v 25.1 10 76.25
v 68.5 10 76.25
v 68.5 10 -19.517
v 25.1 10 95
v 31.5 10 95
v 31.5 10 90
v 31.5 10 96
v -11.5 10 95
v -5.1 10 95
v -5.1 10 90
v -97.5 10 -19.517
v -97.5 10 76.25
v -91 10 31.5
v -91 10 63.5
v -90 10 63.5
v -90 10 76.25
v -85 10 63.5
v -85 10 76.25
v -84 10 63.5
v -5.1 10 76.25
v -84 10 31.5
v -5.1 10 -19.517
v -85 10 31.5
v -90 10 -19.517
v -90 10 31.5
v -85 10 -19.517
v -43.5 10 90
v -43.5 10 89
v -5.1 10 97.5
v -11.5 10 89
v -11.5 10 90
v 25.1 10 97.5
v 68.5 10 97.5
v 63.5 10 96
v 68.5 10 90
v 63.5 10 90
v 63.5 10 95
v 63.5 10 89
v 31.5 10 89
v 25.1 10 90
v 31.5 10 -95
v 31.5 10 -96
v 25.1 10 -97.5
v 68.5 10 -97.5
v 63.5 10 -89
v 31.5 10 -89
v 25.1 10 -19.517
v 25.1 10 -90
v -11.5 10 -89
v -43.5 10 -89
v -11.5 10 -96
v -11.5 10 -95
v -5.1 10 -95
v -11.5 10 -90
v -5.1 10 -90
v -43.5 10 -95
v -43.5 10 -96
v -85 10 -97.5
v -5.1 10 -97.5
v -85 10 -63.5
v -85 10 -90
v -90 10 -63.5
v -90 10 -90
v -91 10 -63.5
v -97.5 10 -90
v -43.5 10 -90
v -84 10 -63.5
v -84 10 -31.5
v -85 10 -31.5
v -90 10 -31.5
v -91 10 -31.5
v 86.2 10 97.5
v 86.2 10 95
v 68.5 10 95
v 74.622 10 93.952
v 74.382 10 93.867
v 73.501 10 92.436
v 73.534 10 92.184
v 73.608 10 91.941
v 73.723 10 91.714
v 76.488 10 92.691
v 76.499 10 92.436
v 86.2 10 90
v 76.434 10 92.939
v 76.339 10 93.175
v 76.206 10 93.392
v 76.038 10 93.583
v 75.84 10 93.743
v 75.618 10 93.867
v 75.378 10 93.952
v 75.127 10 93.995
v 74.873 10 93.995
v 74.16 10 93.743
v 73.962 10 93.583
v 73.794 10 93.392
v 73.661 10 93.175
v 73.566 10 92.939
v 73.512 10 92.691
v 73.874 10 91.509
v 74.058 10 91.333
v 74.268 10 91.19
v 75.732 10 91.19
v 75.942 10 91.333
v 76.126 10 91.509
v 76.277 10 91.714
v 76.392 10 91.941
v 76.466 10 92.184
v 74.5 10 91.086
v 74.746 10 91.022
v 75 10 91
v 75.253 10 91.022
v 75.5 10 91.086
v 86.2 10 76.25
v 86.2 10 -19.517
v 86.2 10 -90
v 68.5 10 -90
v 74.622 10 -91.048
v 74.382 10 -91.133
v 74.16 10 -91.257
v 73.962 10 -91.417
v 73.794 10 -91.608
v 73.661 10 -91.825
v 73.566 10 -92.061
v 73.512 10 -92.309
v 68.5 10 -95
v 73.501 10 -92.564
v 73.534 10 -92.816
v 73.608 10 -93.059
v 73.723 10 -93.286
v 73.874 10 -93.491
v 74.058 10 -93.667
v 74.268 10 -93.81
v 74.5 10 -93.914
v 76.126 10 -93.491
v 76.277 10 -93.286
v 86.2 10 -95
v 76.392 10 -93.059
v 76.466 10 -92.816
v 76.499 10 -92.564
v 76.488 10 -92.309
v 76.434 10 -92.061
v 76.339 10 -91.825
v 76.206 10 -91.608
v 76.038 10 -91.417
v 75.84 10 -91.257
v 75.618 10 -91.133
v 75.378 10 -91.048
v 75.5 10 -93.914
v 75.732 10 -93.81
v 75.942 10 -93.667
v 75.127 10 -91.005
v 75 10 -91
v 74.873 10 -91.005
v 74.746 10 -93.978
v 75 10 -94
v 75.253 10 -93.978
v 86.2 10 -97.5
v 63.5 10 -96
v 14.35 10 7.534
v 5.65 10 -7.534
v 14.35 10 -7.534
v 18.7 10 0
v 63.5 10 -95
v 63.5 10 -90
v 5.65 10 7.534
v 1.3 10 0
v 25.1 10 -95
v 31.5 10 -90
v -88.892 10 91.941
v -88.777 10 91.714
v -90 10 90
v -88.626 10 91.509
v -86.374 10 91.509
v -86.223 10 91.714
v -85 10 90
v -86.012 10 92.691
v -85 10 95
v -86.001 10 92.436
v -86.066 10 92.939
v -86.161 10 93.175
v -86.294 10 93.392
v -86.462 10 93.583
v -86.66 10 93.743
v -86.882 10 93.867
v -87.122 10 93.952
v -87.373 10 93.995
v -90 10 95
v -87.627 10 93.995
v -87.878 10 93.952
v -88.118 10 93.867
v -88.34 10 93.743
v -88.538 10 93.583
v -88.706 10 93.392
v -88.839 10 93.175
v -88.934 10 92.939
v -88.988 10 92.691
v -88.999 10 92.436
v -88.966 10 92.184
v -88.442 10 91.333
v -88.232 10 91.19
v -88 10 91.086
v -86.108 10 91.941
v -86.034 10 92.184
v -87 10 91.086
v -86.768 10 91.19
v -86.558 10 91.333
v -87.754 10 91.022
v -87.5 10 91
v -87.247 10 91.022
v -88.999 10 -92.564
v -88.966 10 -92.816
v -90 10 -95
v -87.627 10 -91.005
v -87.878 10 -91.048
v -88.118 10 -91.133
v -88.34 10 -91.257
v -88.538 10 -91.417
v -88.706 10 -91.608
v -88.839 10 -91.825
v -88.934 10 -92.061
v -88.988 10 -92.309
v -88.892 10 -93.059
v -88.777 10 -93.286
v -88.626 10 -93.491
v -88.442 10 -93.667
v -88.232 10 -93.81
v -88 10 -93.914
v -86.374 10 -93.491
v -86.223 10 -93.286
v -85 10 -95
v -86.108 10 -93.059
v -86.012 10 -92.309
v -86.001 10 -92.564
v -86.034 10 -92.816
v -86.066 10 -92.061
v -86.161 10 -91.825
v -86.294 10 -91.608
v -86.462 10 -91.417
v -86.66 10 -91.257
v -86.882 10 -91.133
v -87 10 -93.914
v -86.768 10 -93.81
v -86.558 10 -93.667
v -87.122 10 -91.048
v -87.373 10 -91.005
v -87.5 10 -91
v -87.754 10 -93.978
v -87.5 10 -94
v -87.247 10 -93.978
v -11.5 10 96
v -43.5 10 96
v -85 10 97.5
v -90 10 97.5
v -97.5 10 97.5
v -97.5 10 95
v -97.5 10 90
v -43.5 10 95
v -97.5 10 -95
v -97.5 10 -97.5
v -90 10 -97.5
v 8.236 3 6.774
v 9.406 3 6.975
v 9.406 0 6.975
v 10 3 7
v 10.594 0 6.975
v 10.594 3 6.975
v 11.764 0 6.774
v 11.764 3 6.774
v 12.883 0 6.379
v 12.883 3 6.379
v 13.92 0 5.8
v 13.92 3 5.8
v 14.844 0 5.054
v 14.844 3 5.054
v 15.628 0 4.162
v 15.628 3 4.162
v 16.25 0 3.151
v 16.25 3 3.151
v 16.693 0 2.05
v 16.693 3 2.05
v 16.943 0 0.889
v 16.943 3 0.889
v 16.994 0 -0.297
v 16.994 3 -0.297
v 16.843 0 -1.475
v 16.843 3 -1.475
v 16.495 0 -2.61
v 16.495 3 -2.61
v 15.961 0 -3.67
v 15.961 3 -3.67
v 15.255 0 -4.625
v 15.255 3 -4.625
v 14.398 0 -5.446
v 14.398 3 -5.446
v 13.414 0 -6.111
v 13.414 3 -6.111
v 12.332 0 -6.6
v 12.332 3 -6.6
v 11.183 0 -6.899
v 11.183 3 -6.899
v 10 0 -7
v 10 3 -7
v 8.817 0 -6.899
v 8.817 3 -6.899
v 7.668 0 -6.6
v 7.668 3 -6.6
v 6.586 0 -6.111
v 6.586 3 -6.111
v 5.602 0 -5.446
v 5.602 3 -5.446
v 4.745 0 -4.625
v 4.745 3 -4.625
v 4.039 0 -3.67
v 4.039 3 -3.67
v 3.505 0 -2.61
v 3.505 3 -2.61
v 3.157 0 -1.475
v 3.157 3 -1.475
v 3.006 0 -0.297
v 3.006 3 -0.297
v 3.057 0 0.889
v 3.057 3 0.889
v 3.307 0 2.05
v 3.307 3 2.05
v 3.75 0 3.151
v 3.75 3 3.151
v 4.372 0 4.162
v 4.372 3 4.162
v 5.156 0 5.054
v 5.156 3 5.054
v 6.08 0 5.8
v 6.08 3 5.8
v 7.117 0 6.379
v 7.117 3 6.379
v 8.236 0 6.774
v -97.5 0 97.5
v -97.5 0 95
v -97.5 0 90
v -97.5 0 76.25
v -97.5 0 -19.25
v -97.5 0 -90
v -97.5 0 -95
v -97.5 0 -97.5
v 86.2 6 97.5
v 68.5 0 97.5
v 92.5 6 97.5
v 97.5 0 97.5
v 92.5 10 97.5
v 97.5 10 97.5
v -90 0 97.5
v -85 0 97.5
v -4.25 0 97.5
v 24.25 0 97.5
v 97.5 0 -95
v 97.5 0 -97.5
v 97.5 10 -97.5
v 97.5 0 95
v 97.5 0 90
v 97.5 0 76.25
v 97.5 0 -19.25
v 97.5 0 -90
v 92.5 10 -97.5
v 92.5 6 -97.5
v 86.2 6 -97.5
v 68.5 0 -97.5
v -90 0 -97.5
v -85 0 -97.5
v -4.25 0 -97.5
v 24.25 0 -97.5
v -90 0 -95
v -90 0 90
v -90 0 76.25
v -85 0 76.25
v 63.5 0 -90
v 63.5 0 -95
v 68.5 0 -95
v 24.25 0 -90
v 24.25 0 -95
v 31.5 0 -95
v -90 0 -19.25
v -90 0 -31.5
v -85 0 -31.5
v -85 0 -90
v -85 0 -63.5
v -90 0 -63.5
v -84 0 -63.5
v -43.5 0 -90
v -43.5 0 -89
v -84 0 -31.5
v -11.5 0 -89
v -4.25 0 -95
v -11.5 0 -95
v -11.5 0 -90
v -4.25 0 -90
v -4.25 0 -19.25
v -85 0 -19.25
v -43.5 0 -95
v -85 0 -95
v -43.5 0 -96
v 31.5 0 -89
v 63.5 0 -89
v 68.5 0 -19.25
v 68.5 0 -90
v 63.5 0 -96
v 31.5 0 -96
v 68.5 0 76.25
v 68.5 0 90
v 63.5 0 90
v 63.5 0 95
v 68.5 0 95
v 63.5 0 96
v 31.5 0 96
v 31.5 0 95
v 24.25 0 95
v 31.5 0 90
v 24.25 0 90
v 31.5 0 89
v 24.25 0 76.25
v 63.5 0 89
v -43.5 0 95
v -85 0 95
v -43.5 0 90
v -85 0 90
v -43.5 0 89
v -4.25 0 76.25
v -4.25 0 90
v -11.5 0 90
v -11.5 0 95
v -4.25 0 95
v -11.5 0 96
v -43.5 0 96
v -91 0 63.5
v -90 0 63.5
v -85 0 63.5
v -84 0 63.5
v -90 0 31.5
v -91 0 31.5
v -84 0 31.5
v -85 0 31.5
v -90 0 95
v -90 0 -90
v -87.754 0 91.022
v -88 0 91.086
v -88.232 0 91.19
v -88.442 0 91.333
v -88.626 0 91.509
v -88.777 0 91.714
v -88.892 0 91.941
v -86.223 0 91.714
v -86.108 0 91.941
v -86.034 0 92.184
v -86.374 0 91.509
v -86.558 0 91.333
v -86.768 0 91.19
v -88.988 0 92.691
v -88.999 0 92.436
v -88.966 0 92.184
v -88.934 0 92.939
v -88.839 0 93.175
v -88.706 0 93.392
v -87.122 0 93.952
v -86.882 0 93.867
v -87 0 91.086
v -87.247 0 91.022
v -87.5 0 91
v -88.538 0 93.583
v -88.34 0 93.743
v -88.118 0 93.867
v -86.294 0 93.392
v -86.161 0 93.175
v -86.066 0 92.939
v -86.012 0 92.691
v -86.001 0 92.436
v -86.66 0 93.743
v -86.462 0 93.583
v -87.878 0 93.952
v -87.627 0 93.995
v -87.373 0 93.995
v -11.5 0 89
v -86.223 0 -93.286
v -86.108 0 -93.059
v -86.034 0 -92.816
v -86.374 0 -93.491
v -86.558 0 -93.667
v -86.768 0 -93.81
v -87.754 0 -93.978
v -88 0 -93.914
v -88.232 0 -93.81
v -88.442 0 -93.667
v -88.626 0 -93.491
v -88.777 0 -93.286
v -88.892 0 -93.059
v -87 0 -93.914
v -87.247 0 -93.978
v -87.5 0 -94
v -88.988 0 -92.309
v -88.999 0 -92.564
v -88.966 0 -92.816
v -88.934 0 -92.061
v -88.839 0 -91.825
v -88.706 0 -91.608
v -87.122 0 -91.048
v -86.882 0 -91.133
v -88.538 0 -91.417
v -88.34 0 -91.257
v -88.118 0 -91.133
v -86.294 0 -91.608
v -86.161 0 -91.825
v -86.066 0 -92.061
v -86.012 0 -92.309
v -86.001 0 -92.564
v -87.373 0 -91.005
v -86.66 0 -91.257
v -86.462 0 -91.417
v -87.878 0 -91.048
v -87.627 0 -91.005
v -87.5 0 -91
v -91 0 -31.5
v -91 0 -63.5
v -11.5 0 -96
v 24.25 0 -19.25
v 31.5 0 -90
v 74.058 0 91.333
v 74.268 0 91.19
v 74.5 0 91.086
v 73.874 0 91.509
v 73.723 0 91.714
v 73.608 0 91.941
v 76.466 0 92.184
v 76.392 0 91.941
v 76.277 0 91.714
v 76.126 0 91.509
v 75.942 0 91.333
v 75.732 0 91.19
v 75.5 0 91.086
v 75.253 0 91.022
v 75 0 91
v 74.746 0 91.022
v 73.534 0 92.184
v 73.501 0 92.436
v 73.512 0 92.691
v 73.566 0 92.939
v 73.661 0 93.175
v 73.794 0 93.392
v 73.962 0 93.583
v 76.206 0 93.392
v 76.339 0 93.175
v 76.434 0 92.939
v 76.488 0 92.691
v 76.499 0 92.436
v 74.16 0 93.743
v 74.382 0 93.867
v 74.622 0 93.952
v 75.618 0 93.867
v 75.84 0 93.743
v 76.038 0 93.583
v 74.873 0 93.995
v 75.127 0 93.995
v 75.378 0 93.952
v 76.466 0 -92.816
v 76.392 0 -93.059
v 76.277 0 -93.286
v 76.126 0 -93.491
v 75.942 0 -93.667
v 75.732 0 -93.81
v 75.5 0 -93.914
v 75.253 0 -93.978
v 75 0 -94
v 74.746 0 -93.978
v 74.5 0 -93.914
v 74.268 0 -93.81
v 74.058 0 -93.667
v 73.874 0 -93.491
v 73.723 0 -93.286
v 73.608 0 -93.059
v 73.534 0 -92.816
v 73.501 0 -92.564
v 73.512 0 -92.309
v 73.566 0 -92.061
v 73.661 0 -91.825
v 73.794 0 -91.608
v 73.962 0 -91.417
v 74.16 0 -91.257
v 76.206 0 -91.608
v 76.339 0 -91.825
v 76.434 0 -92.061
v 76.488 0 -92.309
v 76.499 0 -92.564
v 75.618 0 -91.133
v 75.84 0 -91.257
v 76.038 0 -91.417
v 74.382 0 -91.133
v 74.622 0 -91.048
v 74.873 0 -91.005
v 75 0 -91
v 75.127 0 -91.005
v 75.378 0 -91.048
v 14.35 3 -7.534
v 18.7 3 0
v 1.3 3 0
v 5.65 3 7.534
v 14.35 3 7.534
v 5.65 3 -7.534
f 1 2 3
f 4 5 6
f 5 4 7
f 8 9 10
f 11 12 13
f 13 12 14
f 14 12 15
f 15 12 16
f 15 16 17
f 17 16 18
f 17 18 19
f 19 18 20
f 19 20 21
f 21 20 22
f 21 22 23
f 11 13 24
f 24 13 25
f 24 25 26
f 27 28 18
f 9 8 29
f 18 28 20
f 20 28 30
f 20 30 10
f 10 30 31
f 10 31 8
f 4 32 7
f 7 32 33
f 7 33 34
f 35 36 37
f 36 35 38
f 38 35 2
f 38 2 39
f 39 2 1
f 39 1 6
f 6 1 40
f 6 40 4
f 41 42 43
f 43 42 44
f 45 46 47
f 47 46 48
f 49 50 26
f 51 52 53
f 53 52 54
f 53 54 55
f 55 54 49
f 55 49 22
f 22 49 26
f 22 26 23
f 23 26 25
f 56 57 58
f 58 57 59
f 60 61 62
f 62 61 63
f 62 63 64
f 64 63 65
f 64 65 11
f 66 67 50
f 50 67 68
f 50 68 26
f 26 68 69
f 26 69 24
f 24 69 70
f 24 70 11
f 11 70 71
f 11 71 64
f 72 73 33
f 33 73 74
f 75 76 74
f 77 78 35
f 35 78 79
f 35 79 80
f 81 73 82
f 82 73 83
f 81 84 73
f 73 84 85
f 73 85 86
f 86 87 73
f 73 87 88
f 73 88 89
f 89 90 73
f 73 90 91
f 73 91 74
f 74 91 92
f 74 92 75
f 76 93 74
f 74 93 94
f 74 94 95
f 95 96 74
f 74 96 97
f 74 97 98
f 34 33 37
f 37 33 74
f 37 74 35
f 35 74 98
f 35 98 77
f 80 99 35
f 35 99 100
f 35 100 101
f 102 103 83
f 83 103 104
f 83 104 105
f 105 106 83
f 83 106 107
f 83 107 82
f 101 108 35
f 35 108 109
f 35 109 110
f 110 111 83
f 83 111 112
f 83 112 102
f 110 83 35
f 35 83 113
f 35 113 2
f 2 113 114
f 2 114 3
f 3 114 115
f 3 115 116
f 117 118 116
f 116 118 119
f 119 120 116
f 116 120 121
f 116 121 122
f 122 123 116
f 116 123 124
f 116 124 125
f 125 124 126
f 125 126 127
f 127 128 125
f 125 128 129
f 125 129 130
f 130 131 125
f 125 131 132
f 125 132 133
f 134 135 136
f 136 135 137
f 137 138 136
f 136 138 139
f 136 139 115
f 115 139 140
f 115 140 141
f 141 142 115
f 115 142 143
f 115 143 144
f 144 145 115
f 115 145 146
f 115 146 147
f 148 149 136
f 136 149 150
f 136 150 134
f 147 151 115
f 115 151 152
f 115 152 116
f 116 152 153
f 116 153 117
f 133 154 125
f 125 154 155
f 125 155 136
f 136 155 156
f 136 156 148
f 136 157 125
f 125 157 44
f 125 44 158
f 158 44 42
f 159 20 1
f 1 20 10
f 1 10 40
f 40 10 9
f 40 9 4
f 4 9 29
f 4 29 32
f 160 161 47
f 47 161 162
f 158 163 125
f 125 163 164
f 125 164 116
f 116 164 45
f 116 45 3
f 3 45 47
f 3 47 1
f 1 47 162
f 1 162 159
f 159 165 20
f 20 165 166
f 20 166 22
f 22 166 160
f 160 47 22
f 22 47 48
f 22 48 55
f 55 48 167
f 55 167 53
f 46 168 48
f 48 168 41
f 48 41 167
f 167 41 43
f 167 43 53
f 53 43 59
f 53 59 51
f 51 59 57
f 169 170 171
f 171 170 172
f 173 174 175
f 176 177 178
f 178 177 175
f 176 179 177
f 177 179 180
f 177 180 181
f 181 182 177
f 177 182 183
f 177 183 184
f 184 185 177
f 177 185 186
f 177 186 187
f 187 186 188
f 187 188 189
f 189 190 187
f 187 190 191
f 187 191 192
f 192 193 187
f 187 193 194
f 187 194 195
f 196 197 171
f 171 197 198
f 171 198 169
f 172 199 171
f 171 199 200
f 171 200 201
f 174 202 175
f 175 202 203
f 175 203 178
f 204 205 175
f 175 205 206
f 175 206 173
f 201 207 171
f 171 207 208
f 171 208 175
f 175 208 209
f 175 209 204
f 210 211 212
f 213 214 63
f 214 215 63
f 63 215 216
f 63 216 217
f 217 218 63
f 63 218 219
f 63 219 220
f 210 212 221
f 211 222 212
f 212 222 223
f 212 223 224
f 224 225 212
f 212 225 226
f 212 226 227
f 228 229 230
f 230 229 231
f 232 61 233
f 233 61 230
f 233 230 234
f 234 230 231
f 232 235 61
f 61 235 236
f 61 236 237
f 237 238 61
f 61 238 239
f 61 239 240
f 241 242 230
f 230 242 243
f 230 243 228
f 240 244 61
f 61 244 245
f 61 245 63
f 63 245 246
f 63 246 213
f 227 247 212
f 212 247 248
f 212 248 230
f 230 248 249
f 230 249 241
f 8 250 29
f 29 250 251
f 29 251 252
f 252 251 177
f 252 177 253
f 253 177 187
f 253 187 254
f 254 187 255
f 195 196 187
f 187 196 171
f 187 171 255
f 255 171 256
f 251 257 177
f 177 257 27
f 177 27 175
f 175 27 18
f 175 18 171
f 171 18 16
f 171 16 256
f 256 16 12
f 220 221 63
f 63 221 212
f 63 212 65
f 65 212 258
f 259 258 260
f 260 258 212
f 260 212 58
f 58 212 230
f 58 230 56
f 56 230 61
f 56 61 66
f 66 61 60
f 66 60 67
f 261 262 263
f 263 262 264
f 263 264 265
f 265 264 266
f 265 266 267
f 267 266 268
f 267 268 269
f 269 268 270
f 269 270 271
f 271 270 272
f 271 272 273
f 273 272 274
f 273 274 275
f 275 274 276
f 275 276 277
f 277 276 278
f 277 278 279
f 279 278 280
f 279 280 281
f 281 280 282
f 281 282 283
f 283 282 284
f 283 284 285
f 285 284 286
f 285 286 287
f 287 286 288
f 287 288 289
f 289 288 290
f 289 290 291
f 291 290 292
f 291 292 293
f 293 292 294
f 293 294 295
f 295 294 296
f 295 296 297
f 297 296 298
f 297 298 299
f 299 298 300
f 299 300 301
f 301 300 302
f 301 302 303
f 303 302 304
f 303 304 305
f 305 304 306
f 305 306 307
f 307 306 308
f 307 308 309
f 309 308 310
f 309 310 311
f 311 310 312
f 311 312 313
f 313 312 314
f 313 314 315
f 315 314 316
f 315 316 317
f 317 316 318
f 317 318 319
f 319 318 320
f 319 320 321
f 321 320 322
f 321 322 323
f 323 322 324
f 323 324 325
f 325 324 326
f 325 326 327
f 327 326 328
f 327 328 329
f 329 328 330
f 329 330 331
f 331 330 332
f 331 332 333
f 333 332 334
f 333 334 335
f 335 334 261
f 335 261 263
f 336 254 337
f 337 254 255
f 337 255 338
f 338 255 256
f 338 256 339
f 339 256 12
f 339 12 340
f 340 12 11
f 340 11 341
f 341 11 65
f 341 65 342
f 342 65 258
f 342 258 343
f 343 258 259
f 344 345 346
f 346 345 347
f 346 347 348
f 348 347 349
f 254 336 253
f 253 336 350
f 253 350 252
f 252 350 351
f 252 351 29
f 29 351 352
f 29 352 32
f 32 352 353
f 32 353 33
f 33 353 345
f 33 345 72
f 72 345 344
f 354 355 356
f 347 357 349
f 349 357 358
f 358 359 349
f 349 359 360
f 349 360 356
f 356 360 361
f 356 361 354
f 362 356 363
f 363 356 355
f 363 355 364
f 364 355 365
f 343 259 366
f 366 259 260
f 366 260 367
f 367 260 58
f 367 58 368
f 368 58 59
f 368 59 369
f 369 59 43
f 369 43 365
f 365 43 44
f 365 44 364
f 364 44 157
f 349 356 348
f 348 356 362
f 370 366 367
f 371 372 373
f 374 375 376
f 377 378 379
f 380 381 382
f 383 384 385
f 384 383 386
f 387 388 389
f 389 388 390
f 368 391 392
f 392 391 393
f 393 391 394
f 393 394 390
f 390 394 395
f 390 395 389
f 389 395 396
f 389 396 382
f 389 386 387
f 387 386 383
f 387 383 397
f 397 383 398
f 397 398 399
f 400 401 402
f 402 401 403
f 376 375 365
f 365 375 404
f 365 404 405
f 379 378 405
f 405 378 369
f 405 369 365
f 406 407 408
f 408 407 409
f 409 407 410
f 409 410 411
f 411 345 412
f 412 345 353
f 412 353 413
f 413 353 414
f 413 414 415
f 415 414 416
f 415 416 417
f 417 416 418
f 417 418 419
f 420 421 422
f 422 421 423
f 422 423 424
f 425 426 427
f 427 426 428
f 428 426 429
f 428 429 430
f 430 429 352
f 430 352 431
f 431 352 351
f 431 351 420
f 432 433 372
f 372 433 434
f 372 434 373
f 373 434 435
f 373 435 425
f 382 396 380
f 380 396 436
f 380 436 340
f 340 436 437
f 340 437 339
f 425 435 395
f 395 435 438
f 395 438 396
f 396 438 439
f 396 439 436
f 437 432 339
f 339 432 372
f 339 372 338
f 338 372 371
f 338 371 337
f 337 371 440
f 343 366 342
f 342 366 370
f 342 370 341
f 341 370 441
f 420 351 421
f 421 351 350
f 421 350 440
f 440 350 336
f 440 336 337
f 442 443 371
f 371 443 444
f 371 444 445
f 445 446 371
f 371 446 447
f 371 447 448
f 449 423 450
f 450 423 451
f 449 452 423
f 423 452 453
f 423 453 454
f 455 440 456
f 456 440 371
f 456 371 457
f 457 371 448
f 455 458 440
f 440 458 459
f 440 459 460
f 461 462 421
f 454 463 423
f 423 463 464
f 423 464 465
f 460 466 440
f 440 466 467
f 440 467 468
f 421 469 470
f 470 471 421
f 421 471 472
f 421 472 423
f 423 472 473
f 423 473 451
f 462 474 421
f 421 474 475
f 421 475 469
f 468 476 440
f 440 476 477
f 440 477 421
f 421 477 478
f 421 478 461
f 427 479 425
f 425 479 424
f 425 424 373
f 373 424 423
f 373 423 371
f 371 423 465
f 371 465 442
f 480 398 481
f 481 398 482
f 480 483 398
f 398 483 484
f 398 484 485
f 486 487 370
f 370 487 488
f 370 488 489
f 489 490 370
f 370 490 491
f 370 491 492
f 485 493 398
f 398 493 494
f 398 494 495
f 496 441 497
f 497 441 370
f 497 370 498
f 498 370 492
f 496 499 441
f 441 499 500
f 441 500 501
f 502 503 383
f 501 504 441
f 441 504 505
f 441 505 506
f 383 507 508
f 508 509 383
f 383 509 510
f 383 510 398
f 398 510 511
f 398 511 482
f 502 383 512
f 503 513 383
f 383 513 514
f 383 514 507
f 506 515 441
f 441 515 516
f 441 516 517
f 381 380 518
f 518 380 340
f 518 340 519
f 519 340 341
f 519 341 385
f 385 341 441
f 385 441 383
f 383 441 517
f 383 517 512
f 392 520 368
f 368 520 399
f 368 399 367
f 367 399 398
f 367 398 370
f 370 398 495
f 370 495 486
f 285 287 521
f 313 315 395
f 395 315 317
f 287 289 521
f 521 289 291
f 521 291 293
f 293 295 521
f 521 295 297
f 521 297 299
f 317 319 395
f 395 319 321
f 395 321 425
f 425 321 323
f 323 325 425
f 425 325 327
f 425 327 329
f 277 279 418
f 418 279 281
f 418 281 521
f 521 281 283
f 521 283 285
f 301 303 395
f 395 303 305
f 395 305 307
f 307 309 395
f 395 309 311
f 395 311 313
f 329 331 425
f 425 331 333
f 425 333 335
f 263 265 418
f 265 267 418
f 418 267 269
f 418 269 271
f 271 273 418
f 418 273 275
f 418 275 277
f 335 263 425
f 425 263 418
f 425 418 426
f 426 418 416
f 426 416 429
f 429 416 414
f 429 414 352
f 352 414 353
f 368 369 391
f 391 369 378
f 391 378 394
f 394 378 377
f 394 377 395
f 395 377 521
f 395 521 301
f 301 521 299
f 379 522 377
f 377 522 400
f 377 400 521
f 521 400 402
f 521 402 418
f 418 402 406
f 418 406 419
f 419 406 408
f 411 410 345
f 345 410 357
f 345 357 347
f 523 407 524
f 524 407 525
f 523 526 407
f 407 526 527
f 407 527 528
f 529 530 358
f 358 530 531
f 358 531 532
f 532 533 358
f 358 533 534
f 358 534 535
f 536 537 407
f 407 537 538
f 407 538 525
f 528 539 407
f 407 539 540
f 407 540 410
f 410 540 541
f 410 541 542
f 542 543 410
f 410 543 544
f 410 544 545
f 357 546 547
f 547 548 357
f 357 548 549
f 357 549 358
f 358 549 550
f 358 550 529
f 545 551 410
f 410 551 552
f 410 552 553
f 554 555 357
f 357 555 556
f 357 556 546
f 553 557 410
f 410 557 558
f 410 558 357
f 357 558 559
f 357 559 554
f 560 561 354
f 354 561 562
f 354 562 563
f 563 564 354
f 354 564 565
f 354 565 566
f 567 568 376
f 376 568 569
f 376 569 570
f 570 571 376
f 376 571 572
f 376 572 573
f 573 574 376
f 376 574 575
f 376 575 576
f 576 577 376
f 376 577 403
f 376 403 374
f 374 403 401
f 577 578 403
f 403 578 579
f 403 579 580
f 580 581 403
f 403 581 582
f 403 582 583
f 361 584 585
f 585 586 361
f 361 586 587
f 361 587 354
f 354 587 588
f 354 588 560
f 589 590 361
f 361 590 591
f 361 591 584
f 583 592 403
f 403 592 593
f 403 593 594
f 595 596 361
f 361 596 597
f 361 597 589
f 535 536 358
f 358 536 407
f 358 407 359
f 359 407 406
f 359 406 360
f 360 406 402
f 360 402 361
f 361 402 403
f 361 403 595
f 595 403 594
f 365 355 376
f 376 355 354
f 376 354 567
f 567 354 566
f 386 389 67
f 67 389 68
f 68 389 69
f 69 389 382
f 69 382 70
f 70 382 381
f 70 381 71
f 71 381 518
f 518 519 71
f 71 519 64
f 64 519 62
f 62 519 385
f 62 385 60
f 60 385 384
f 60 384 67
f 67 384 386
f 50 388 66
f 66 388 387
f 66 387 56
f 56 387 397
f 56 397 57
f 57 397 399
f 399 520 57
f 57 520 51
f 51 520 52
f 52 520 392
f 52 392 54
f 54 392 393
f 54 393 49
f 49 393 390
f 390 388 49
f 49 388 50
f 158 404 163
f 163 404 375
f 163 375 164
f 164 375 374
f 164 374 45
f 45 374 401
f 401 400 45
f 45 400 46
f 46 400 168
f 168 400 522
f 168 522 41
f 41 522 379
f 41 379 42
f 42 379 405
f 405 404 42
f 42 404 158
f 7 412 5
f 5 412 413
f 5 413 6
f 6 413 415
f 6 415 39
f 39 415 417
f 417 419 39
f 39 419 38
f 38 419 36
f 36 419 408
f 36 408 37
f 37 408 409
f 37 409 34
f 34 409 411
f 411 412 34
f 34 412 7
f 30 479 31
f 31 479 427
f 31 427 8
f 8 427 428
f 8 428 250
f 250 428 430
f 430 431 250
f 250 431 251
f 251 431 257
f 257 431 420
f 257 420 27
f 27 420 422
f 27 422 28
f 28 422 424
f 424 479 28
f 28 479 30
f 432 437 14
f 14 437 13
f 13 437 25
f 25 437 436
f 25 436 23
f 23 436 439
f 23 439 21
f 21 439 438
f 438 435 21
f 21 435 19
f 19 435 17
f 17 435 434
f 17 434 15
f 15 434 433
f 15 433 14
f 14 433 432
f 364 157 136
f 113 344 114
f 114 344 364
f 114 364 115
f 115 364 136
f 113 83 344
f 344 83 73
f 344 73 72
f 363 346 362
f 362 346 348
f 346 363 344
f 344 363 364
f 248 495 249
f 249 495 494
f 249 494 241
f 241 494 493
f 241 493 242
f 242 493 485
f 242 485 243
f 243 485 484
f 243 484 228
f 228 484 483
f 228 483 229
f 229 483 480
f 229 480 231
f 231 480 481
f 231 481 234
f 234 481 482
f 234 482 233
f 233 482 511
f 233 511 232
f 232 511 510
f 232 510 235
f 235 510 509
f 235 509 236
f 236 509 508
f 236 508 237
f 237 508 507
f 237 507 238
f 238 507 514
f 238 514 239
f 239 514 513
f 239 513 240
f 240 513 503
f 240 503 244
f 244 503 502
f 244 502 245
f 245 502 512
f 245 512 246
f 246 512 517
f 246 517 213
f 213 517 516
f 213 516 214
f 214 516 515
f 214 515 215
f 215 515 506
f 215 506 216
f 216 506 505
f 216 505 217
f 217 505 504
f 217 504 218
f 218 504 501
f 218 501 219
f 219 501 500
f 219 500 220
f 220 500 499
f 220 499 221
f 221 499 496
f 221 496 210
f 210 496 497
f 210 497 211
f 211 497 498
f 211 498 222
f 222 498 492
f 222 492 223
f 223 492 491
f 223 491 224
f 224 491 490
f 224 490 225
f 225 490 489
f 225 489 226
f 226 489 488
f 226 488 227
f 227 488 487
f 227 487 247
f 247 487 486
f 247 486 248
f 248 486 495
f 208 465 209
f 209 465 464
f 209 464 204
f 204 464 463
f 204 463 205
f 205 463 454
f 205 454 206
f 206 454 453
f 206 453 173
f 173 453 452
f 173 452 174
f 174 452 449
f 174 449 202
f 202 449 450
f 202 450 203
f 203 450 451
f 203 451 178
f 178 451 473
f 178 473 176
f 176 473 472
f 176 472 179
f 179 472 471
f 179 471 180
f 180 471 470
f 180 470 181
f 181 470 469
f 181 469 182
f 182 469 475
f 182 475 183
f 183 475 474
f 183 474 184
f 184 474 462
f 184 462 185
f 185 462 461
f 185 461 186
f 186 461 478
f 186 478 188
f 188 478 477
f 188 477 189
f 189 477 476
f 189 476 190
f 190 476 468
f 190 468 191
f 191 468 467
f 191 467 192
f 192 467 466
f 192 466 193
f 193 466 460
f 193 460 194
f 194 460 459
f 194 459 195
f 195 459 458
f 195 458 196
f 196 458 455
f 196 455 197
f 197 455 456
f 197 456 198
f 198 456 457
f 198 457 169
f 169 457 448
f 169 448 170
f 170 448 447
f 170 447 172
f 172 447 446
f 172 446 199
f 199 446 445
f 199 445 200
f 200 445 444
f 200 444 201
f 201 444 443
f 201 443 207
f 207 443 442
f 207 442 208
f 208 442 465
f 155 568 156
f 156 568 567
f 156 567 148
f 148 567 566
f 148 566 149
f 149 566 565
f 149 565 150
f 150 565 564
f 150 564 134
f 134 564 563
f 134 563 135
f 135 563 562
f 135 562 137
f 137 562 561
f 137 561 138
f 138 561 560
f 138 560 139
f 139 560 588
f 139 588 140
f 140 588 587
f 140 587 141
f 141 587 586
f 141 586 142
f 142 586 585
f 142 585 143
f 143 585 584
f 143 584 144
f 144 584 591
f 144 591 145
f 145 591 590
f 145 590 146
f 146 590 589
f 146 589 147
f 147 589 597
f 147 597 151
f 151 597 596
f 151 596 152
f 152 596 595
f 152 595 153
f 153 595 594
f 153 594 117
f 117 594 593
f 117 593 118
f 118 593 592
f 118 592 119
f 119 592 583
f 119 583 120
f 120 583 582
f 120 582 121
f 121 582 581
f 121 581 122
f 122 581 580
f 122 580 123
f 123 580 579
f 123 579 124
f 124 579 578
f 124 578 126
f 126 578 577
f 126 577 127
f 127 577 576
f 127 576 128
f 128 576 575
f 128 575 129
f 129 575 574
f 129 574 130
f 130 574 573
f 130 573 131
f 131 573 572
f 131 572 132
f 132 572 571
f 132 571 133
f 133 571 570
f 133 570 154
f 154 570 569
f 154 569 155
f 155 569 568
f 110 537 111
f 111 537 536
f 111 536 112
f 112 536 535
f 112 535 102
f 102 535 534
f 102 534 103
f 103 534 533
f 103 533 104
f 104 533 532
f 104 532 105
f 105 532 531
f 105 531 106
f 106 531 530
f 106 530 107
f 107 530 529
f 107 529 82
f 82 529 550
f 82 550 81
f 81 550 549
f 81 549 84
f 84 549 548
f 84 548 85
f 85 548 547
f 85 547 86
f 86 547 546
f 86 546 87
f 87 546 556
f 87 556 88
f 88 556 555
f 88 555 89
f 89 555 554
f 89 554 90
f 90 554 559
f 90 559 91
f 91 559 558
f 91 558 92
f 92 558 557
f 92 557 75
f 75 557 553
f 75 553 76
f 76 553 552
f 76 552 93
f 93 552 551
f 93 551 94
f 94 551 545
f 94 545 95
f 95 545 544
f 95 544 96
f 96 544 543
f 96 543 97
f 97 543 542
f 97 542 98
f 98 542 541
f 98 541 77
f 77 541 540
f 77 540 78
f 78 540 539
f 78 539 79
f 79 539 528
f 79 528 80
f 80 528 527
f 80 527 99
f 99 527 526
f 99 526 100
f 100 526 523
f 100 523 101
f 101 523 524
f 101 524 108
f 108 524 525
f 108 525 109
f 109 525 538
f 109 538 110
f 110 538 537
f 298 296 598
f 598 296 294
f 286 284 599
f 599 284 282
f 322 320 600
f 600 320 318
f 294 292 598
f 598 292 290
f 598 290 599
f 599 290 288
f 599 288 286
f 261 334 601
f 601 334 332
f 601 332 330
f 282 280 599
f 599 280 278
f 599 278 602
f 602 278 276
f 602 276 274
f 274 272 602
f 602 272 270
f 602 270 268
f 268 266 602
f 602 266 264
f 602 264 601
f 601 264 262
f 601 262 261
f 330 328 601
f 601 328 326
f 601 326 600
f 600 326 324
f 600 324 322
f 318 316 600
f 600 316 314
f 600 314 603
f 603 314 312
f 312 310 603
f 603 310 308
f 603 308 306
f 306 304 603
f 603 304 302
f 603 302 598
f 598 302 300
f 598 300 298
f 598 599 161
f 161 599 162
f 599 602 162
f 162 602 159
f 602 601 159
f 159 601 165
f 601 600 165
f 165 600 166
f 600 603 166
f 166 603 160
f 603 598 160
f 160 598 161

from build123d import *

# Parameters (mm, degrees)
ESBO_O1_W                = 195
ESBO_O1_H                = 195
RESSALTO_EXTRUS_O1_DEPTH = 10
ESBO_O2_W                = 7
ESBO_O2_H                = 32
ESBO_O2_W_2              = 32
ESBO_O2_H_2              = 7
CORTE_EXTRUS_O1_DEPTH    = 11
ESBO_O3_W                = 6.3
ESBO_O3_H                = 195
CORTE_EXTRUS_O2_DEPTH    = 4
ESBO_O4_R                = 1.5
CORTE_EXTRUS_O3_DEPTH    = 11
ESBO_O5_R                = 1.5
CORTE_EXTRUS_O4_DEPTH    = 11
ESBO_O6_R                = 7
CORTE_EXTRUS_O5_DEPTH    = 11
ESBO_O7_R                = 7
CORTE_EXTRUS_O6_DEPTH    = 7


with BuildPart() as part:
    # Esboço1 → Ressalto-extrusão1 (new body)
    with BuildSketch(Plane(origin=(0, 0, 0), x_dir=(1, 0, 0), z_dir=(0, 1, 0))):
        Rectangle(ESBO_O1_W, ESBO_O1_H)
    extrude(amount=RESSALTO_EXTRUS_O1_DEPTH)

    # Esboço2 → Corte-extrusão1 (cut, through all)
    with BuildSketch(Plane(origin=(0, 10, 0), x_dir=(1, 0, 0), z_dir=(0, 1, 0))):
        with Locations((-87.5, 47.5)):
            Rectangle(ESBO_O2_W, ESBO_O2_H)
        with Locations((-87.5, -47.5)):
            Rectangle(ESBO_O2_W, ESBO_O2_H)
        with Locations((-27.5, -92.5)):
            Rectangle(ESBO_O2_W_2, ESBO_O2_H_2)
        with Locations((47.5, -92.5)):
            Rectangle(ESBO_O2_W_2, ESBO_O2_H_2)
        with Locations((47.5, 92.5)):
            Rectangle(ESBO_O2_W_2, ESBO_O2_H_2)
        with Locations((-27.5, 92.5)):
            Rectangle(ESBO_O2_W_2, ESBO_O2_H_2)
    extrude(amount=-CORTE_EXTRUS_O1_DEPTH, mode=Mode.SUBTRACT)

    # Esboço3 → Corte-extrusão2 (cut)
    with BuildSketch(Plane(origin=(0, 10, 0), x_dir=(1, 0, 0), z_dir=(0, 1, 0))):
        with Locations((89.35, 0)):
            Rectangle(ESBO_O3_W, ESBO_O3_H)
    extrude(amount=-CORTE_EXTRUS_O2_DEPTH, mode=Mode.SUBTRACT)

    # Esboço4 → Corte-extrusão3 (cut, through all)
    with BuildSketch(Plane.XZ):
        with Locations((-87.5, 92.5)):
            Circle(ESBO_O4_R)
        with Locations((-87.5, -92.5)):
            Circle(ESBO_O4_R)
    extrude(amount=-CORTE_EXTRUS_O3_DEPTH, mode=Mode.SUBTRACT)

    # Esboço5 → Corte-extrusão4 (cut, through all)
    with BuildSketch(Plane.XZ):
        with Locations((75, 92.5)):
            Circle(ESBO_O5_R)
        with Locations((75, -92.5)):
            Circle(ESBO_O5_R)
    extrude(amount=-CORTE_EXTRUS_O4_DEPTH, mode=Mode.SUBTRACT)

    # Esboço6 → Corte-extrusão5 (cut, through all)
    with BuildSketch(Plane.XZ):
        with Locations((10, 0)):
            Circle(ESBO_O6_R)
    extrude(amount=-CORTE_EXTRUS_O5_DEPTH, mode=Mode.SUBTRACT)

    # Esboço7 → Corte-extrusão6 (cut)
    with BuildSketch(Plane(origin=(0, 10, 0), x_dir=(1, 0, 0), z_dir=(0, 1, 0))):
        Polygon((14.35, 7.534421013), (18.7, 0), (14.35, -7.534421013), (5.65, -7.534421013), (1.3, 0), (5.65, 7.534421013), align=None)
        with Locations((10, 0)):
            Circle(ESBO_O7_R, mode=Mode.SUBTRACT)
        with Locations((10, 0)):
            Circle(ESBO_O7_R)
    extrude(amount=-CORTE_EXTRUS_O6_DEPTH, mode=Mode.SUBTRACT)


solid = part.part
